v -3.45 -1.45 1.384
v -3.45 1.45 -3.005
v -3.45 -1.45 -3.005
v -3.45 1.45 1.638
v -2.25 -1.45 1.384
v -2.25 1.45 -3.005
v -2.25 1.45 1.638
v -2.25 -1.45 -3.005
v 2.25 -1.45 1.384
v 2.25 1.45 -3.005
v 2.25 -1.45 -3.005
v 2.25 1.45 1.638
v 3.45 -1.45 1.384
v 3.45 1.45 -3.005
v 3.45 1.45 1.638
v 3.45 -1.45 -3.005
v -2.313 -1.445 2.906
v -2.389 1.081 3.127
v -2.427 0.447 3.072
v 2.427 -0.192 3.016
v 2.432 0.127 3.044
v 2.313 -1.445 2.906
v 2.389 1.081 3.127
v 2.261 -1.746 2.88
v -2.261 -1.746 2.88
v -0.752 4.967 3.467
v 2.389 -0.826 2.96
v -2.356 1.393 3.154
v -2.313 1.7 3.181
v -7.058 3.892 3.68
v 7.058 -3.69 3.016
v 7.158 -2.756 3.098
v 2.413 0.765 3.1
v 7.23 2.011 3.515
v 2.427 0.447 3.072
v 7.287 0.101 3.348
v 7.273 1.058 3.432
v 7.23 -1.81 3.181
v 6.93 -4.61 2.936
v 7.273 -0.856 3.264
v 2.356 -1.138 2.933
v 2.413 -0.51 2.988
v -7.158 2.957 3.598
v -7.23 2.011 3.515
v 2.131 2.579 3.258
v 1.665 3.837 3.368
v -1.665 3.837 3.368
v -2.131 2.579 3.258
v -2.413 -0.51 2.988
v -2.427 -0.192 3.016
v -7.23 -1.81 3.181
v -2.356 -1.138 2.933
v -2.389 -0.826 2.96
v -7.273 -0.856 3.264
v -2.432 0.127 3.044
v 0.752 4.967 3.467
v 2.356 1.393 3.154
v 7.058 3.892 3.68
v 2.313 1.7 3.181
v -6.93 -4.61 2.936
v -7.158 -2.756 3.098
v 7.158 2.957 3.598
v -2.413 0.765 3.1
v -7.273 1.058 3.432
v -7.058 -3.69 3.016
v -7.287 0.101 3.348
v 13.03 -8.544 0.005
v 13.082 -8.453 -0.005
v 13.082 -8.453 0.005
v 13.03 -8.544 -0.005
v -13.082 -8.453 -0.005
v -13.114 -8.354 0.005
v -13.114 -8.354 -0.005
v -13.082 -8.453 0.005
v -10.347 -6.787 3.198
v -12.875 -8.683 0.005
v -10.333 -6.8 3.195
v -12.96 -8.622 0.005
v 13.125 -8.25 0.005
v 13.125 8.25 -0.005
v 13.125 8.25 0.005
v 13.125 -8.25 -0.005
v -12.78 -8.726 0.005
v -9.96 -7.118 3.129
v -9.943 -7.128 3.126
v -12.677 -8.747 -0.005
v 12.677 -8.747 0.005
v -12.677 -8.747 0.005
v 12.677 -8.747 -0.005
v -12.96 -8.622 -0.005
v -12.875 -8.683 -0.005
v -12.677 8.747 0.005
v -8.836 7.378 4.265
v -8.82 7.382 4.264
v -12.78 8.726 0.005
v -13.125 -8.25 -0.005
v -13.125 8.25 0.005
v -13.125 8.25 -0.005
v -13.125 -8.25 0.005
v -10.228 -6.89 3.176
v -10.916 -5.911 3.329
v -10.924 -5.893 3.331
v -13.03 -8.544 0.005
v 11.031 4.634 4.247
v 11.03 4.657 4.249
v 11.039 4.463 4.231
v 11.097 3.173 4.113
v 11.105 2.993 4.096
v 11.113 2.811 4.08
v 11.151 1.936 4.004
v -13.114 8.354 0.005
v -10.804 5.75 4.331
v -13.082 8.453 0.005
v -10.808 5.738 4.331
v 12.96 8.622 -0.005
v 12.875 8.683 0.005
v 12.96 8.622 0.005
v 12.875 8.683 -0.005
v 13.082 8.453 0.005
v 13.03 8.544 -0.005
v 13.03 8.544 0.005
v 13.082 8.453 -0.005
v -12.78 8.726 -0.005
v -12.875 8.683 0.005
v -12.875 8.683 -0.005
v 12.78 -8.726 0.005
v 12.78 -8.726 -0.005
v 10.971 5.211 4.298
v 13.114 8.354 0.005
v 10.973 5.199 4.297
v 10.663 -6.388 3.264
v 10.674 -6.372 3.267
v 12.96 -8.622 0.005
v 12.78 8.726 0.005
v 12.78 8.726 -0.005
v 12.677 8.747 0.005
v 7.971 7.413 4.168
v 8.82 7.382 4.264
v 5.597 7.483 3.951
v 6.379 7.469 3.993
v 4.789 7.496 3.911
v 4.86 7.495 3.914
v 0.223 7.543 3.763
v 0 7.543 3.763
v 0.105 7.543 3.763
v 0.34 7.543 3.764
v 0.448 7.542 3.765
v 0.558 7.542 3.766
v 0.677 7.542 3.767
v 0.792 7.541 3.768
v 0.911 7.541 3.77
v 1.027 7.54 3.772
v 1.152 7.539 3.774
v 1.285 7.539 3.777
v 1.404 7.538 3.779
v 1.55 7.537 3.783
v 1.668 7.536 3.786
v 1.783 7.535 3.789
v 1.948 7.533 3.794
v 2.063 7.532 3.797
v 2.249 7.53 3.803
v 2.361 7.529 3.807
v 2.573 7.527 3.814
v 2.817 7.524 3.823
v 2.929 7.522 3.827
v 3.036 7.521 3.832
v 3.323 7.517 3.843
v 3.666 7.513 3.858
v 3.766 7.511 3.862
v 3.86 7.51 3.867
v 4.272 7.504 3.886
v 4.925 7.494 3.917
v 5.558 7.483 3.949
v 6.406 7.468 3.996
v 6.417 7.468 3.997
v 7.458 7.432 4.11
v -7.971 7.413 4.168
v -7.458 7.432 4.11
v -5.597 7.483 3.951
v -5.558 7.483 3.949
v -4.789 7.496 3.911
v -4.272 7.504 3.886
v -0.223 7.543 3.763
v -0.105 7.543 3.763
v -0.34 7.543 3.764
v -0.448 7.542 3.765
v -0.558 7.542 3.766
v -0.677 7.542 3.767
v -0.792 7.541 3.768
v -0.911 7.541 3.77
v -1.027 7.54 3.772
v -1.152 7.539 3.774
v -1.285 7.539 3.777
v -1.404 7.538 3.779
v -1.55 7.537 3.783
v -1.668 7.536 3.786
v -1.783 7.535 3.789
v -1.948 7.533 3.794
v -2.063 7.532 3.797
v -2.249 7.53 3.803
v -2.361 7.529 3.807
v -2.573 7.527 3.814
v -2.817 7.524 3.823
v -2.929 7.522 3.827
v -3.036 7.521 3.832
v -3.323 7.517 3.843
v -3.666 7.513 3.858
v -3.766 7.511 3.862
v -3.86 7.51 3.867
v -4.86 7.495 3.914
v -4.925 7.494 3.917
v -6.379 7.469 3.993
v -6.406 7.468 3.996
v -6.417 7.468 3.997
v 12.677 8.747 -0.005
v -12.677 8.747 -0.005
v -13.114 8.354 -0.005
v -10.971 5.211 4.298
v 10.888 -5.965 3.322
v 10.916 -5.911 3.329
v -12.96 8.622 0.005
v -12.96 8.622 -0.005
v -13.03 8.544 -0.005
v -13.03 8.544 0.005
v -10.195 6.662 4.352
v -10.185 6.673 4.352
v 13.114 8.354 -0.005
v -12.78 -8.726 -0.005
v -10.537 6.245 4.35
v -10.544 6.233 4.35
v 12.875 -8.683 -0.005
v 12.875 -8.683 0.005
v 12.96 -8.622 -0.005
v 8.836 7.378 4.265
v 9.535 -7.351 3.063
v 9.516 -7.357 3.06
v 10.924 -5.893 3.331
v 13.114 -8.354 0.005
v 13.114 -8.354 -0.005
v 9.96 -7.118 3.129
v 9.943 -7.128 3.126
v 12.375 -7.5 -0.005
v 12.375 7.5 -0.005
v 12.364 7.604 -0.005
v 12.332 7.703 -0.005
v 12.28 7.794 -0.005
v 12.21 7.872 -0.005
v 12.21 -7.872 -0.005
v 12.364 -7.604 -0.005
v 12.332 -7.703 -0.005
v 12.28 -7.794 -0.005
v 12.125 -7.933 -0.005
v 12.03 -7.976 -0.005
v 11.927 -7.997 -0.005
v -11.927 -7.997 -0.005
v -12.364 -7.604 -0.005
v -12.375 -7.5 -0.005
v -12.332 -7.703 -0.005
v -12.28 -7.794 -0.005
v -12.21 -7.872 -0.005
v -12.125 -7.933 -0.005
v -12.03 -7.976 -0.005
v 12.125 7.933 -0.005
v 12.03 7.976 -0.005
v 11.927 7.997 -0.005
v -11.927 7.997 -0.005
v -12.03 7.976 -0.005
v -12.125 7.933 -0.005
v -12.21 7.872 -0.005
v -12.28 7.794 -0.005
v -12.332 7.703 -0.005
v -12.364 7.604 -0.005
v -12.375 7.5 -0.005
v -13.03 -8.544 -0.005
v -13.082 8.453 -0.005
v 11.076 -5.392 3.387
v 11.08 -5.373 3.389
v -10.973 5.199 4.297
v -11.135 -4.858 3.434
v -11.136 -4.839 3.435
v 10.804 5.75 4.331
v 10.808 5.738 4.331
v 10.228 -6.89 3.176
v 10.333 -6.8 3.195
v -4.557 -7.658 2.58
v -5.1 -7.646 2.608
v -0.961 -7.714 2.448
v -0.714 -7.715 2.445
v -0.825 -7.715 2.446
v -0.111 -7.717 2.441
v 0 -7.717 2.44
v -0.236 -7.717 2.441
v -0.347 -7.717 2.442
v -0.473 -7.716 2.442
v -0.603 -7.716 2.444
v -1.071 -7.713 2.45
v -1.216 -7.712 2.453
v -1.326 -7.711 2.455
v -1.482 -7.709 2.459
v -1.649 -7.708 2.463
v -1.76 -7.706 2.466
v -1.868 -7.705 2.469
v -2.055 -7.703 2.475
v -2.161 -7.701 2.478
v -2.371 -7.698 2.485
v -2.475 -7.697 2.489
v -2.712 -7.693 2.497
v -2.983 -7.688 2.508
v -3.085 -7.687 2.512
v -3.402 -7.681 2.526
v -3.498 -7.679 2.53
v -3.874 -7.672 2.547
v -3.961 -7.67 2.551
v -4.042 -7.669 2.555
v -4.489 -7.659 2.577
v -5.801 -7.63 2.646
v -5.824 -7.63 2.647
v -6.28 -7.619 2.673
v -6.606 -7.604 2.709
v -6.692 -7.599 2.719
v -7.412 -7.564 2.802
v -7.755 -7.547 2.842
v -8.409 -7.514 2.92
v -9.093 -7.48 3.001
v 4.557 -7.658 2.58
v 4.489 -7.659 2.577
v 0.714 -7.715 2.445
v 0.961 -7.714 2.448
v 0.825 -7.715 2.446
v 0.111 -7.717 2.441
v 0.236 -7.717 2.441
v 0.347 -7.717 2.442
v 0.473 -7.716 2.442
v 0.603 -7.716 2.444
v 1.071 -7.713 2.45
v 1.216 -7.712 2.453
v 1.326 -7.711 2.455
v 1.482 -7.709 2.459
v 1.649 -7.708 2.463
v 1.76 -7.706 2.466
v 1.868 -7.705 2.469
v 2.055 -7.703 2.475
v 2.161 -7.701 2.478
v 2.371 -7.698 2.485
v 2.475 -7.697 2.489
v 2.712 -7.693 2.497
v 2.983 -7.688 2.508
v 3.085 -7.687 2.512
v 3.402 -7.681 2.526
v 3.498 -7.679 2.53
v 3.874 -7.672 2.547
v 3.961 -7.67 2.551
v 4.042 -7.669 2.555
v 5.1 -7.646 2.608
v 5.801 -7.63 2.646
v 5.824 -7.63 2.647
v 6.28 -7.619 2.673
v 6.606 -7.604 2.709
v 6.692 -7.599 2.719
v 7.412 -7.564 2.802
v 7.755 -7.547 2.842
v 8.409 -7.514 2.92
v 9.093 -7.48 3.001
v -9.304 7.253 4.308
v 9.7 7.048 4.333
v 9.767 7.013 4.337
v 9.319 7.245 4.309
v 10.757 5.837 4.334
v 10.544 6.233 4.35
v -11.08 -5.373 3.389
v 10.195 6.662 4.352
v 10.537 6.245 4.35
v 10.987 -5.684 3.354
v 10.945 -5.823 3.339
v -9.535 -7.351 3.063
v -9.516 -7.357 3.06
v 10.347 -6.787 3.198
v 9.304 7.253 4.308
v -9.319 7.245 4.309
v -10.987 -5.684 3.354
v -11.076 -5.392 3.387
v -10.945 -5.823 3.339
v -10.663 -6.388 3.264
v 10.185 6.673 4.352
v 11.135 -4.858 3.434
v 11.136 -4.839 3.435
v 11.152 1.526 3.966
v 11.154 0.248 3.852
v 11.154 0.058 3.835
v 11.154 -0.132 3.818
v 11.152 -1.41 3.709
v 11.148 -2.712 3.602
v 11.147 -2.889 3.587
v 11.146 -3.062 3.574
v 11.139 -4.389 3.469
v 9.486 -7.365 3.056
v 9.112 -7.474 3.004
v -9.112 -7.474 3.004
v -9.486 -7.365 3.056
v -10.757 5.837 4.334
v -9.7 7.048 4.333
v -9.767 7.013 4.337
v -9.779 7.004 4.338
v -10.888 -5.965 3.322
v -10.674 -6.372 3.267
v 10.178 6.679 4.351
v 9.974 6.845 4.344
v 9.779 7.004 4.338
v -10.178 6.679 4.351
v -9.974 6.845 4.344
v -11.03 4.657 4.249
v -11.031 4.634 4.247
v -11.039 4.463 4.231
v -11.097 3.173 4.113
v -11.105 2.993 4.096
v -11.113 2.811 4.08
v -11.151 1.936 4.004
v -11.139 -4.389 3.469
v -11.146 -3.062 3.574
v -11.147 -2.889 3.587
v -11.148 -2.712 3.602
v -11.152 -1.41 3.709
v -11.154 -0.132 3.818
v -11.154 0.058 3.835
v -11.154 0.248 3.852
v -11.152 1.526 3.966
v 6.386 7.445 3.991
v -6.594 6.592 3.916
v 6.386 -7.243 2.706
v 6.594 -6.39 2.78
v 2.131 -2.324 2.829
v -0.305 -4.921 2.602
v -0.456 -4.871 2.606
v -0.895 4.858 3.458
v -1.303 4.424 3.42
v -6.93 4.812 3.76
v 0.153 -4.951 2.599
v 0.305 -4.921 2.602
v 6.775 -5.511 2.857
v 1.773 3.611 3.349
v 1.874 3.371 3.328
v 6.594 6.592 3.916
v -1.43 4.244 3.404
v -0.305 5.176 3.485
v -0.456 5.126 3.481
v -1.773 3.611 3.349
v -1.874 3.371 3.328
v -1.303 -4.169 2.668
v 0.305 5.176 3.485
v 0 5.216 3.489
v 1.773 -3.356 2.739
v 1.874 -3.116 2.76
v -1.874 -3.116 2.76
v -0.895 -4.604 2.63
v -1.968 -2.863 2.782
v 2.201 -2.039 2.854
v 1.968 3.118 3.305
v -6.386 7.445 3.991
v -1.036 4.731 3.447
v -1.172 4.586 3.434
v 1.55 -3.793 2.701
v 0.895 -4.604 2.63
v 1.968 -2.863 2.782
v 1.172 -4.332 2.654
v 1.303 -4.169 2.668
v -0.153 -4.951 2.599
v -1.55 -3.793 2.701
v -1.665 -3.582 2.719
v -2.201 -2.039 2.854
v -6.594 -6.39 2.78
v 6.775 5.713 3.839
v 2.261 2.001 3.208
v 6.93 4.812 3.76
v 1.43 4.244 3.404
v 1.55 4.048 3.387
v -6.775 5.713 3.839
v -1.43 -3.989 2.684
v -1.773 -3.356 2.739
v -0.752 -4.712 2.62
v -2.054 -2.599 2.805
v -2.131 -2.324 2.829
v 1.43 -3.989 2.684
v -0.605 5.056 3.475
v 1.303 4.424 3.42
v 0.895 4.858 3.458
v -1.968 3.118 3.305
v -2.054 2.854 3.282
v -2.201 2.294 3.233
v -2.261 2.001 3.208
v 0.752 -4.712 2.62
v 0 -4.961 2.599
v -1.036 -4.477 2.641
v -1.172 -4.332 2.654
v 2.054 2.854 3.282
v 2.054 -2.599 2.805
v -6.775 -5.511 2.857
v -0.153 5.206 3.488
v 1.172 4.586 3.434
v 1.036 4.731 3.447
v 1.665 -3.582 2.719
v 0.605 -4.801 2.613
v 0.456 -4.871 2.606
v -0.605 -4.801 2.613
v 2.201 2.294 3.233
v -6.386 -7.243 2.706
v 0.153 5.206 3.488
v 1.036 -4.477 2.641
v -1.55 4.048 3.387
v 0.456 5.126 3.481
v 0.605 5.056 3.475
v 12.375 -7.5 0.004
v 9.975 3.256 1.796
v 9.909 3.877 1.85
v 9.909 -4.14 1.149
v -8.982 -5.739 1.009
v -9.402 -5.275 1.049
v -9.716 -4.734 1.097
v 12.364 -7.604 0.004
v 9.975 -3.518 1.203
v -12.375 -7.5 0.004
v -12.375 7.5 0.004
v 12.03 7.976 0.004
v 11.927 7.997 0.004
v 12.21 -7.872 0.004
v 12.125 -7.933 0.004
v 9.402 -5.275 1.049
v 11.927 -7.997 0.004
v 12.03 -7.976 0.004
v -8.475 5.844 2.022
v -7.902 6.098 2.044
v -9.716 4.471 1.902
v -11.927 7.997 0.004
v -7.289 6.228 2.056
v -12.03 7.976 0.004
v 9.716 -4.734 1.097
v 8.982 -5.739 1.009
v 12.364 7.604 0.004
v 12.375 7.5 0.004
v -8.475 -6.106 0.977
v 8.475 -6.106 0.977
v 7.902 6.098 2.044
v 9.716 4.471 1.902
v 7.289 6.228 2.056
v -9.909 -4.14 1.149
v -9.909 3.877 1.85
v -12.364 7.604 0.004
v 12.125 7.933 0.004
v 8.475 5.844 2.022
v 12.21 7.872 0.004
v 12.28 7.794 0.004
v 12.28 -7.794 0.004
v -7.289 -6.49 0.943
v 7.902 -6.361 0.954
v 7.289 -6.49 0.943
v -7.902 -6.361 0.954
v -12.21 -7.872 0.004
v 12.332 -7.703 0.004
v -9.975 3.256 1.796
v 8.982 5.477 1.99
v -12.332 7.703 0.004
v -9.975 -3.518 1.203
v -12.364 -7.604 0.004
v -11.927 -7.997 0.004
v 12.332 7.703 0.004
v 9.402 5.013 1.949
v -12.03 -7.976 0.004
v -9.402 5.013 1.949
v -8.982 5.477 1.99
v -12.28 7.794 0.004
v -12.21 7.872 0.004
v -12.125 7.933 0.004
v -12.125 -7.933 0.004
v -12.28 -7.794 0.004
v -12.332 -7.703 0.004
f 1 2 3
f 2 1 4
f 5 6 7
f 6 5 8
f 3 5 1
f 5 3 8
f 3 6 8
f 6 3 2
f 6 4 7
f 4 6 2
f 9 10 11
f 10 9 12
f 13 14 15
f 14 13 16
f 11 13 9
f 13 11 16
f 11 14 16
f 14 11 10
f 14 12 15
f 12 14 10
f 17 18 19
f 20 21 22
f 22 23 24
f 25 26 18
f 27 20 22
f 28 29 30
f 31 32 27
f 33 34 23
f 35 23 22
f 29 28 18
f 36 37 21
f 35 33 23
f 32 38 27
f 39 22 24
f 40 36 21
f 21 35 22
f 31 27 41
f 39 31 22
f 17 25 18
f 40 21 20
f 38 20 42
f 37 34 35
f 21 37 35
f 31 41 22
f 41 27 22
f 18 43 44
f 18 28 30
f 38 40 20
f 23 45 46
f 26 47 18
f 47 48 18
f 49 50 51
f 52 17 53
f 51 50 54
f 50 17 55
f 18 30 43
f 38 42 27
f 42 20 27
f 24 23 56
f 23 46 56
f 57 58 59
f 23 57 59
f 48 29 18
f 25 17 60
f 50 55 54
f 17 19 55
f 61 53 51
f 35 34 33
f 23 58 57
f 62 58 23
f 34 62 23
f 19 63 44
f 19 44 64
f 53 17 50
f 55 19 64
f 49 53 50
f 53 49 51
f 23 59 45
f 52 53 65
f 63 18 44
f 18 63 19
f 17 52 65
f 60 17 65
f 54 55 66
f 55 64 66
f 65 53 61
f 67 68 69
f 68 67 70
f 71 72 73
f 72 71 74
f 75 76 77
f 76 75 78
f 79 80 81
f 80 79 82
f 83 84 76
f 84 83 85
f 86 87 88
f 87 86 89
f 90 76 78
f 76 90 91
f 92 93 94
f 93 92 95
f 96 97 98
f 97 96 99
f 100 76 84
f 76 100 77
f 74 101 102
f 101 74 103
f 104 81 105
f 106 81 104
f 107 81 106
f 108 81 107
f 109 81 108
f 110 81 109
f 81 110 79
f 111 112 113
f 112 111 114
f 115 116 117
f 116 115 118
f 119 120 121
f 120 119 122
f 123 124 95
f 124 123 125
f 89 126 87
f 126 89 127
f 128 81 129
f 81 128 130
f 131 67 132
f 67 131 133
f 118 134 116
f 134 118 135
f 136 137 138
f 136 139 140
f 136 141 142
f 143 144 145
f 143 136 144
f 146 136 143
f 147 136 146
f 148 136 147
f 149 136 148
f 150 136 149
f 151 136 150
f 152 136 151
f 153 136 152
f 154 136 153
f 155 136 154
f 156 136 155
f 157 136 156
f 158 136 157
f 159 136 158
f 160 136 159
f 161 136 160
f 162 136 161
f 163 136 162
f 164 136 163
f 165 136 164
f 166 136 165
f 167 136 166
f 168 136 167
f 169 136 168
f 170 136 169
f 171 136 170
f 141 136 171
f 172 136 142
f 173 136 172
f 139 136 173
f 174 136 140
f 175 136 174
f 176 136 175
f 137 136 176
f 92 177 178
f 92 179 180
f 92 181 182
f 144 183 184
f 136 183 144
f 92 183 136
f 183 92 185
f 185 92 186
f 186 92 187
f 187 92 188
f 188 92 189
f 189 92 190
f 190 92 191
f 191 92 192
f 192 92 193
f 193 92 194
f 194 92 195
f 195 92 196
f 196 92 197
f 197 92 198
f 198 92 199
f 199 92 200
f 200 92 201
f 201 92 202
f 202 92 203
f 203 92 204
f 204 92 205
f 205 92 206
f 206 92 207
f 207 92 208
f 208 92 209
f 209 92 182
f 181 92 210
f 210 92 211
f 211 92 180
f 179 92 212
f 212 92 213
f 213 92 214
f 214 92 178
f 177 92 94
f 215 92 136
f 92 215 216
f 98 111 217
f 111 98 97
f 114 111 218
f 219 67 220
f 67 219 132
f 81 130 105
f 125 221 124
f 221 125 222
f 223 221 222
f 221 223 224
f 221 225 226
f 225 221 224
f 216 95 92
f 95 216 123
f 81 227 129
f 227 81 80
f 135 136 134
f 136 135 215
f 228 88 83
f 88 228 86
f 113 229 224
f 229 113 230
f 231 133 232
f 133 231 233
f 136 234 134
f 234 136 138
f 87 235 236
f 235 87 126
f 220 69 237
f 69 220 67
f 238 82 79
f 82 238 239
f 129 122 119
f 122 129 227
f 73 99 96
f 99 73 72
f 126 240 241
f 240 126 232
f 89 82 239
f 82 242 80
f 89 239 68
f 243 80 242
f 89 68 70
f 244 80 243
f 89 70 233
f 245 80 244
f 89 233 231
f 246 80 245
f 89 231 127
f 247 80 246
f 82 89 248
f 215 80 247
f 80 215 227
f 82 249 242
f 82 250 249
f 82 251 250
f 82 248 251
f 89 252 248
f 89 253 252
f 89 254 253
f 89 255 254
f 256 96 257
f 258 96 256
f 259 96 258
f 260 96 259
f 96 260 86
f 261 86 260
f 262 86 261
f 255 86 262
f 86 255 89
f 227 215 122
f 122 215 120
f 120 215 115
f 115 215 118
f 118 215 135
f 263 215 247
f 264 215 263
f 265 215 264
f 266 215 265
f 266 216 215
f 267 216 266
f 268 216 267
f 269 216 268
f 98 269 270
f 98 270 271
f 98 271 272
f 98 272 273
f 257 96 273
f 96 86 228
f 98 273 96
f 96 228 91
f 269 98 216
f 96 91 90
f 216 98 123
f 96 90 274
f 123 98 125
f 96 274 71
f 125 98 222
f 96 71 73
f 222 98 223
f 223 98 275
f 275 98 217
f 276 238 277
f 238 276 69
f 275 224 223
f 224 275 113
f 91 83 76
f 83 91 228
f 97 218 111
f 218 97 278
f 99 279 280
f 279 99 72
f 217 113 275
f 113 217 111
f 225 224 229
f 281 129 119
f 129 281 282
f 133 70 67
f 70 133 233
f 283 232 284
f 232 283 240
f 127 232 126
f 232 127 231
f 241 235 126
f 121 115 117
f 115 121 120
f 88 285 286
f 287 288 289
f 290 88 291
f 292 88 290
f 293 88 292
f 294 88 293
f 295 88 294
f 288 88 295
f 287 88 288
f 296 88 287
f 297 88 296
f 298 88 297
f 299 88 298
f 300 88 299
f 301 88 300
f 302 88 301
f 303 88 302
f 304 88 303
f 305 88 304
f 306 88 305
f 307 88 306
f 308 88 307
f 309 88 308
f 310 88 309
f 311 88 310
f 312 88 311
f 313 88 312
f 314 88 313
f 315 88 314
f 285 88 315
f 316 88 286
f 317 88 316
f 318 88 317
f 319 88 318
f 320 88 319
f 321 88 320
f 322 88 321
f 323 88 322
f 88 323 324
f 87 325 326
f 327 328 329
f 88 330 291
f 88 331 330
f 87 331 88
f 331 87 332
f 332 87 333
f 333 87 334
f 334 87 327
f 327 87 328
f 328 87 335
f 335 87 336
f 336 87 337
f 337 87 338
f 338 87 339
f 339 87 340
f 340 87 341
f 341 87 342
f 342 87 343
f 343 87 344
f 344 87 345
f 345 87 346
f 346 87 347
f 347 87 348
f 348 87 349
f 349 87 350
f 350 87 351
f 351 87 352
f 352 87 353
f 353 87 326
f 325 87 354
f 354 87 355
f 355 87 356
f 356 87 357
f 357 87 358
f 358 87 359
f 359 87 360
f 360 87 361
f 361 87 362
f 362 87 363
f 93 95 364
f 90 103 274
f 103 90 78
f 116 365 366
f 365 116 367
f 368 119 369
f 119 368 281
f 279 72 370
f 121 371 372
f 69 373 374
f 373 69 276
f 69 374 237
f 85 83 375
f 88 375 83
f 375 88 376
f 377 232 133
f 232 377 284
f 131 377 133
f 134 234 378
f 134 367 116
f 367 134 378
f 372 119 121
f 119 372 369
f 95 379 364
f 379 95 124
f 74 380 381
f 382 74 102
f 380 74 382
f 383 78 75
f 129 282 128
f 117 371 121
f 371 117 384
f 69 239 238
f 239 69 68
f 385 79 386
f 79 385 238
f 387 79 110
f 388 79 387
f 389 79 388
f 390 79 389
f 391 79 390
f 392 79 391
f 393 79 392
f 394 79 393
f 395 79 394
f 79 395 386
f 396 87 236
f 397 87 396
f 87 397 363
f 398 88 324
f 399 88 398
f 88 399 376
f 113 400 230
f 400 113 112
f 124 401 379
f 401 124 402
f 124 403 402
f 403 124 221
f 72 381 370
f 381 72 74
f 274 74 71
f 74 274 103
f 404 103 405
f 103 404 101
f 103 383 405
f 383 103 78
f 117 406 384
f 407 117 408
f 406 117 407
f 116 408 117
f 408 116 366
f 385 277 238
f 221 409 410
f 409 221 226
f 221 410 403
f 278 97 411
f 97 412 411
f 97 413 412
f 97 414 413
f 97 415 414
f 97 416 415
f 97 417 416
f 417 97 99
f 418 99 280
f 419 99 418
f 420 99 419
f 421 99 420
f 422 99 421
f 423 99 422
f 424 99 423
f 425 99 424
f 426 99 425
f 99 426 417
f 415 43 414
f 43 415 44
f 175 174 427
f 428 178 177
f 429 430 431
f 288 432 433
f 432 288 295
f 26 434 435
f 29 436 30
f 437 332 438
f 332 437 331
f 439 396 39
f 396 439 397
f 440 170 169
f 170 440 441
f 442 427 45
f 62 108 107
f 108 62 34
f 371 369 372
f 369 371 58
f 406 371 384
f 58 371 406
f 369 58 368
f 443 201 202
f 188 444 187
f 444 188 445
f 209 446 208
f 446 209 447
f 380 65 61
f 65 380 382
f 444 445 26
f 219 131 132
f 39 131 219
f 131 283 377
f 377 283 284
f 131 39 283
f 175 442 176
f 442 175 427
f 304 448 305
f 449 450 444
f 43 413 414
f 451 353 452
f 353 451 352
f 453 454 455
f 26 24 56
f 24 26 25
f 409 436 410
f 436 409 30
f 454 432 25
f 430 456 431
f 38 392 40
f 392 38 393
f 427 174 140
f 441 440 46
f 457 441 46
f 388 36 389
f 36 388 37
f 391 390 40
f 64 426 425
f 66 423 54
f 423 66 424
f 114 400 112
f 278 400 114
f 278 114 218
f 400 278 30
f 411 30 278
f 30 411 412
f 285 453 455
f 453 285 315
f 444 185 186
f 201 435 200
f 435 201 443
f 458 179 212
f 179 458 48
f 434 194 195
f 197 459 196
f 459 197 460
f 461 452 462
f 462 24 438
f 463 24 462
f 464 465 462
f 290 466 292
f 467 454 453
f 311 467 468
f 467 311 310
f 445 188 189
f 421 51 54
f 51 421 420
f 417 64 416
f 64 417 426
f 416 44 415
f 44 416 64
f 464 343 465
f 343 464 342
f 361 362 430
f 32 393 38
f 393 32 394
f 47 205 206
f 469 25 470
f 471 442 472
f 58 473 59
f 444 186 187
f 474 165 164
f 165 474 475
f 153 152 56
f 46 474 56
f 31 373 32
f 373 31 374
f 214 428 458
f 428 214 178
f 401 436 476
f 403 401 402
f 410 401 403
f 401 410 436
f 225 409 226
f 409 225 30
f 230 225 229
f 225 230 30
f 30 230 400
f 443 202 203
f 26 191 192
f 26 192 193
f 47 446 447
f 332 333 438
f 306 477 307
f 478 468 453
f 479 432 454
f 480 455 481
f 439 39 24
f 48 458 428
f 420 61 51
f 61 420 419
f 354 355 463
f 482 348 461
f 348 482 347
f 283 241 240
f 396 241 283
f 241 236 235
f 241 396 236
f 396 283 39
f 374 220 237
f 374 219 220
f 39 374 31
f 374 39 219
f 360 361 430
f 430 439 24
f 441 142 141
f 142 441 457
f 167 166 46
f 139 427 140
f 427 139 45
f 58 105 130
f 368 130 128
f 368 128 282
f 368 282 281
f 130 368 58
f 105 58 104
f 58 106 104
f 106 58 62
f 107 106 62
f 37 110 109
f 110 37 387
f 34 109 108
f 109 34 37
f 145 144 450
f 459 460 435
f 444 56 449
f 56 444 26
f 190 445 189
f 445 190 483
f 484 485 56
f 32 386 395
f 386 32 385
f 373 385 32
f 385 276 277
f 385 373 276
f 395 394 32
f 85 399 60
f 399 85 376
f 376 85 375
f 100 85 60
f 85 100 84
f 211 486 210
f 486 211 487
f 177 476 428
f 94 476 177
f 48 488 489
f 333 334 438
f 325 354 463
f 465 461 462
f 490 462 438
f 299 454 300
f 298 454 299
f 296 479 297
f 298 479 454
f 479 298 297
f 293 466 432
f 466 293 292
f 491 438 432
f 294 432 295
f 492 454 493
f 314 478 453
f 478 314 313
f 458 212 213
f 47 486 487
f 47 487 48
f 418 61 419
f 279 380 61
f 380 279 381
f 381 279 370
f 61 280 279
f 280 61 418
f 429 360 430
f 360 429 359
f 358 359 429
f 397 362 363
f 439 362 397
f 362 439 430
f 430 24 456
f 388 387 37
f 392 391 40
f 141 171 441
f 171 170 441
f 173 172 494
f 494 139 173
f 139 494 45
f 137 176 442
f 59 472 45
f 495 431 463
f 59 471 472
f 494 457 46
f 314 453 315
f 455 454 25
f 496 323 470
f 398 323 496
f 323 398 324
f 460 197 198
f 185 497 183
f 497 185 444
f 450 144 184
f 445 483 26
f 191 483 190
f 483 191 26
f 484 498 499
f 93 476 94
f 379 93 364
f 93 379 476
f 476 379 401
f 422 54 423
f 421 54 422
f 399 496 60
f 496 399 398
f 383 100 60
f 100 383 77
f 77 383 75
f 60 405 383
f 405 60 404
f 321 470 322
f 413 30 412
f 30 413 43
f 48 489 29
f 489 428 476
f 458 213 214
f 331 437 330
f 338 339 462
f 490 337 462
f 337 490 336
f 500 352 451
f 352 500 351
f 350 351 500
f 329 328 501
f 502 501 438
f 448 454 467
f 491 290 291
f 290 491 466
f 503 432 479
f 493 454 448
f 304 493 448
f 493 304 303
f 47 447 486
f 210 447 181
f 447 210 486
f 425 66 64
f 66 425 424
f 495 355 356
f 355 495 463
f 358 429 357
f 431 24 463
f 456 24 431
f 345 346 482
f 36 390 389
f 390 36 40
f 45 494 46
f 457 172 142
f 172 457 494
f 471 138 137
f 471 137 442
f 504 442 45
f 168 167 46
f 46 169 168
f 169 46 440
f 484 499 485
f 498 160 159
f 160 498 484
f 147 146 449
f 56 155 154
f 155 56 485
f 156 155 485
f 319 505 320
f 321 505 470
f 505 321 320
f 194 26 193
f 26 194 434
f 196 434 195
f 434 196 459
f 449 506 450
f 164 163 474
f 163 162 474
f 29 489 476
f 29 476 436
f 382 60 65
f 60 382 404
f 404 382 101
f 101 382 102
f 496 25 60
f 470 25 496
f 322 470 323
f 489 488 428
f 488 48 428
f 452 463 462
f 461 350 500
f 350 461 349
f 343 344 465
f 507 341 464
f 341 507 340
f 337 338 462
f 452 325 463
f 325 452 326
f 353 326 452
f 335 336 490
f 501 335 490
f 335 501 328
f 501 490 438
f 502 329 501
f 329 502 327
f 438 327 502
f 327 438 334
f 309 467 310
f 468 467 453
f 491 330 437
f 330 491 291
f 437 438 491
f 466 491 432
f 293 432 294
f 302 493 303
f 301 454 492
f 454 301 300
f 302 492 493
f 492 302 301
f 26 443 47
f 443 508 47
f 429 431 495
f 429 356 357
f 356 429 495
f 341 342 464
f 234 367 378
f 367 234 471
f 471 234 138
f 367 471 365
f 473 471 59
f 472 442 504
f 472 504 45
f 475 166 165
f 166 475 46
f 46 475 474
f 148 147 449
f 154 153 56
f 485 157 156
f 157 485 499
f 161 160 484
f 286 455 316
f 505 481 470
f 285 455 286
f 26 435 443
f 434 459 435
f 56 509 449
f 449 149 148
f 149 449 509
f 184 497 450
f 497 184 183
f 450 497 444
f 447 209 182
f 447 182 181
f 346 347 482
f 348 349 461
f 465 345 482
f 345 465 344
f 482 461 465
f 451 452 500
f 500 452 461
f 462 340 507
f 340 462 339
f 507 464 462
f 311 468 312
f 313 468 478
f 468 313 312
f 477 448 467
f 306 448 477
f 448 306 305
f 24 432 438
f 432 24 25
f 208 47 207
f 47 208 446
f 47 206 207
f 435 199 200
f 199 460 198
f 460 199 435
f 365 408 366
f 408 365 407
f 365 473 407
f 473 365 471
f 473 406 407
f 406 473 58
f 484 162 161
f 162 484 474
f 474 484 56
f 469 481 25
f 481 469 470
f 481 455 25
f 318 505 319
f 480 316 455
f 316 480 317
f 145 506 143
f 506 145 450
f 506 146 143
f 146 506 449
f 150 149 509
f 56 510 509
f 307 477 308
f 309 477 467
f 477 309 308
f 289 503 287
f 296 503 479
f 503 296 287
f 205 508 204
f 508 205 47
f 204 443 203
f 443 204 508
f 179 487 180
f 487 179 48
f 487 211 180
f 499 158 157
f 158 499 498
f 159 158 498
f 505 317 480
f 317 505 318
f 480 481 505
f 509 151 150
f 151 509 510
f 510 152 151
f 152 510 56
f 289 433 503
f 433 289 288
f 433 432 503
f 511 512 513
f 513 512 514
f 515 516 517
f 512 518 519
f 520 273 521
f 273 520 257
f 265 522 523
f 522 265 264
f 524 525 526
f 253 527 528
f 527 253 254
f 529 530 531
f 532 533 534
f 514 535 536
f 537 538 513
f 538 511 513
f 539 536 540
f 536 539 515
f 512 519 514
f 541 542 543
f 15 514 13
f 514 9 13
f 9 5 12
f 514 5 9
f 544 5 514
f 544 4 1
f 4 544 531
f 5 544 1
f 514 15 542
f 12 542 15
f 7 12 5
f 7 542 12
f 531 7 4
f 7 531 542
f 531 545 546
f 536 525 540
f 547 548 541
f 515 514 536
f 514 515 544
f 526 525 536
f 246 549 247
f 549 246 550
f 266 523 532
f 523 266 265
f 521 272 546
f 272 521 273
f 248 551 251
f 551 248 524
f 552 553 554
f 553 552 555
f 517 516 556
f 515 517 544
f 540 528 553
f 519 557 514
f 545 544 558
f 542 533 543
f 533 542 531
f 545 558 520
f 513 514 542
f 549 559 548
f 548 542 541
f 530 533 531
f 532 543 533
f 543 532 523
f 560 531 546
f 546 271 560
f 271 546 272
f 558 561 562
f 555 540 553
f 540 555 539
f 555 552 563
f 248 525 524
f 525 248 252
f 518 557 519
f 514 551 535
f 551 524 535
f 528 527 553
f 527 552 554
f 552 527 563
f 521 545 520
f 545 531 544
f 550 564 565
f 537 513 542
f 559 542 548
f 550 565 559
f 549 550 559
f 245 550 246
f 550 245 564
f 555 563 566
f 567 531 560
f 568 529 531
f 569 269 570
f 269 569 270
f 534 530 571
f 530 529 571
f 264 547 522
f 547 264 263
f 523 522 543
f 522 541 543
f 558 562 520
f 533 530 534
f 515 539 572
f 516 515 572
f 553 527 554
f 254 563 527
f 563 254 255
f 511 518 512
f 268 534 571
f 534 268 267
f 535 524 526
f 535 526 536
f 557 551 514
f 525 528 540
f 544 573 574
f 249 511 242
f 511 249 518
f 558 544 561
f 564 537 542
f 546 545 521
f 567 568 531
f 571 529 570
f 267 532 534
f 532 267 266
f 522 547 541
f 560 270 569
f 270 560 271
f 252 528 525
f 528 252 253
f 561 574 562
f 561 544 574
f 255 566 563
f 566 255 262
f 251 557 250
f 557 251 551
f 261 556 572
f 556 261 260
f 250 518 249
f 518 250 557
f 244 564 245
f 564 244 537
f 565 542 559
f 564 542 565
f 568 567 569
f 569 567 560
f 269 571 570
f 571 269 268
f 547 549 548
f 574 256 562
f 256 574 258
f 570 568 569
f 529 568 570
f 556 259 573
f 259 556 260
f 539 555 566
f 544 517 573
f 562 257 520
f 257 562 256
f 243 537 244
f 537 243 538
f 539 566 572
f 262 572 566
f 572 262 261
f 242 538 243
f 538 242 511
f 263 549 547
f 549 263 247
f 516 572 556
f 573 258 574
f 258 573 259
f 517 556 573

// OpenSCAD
union () {
  difference () {
    translate ([-2.85, 0, 0]) {
      union () {
        color ([0, 1, 0, ]) {
          hull () {
            translate ([0, 0, 5]) {
              cube ([1.2, 2.9, 0.01], center=true);
            }
            translate ([0, 0, -3]) {
              translate ([0, 0, 0]) {
                cube ([1.2, 2.9, 0.01], center=true);
              }
            }
          }
        }
        color ([0, 1, 0, ]) {
          hull () {
            translate ([5.7, 0, 5]) {
              cube ([1.2, 2.9, 0.01], center=true);
            }
            translate ([0, 0, -3]) {
              translate ([5.7, 0, 0]) {
                cube ([1.2, 2.9, 0.01], center=true);
              }
            }
          }
        }
      }
    }
    translate ([0, 0, 4.5]) {
      rotate ([5.000000000000001,0.0,0.0]) {
        translate ([0, 0, 75.93375000000005]) {
          scale ([1, 2.1, 1]) {
            sphere ($fn=100, r=77.43375000000005);
          }
        }
      }
    }
  }
  difference () {
    difference () {
      hull () {
        translate ([0, 0, 4.5]) {
          rotate ([5.000000000000001,0.0,0.0]) {
            minkowski () {
              cube ([15.450000000000003, 8.3, 0.0099], center=true);
              cylinder ($fs=0.1, h=1.0E-4, r=3, center=true);
            }
          }
        }
        minkowski () {
          cube ([25.25, 16.5, 0.0099], center=true);
          cylinder ($fs=0.1, h=1.0E-4, r=0.5, center=true);
        }
      }
      translate ([0, 0, 4.5]) {
        rotate ([5.000000000000001,0.0,0.0]) {
          translate ([0, 0, 75.93375000000005]) {
            scale ([1, 2.1, 1]) {
              sphere ($fn=100, r=77.43375000000005);
            }
          }
        }
      }
    }
    #union () {
      hull () {
        rotate ([5.000000000000001,0.0,0.0]) {
          translate ([0, 0, 1.5]) {
            minkowski () {
              cube ([13.950000000000003, 6.800000000000001, 0.0099], center=true);
              cylinder ($fs=0.1, h=1.0E-4, r=3, center=true);
            }
          }
        }
        translate ([0, 0, -0.001]) {
          minkowski () {
            cube ([23.75, 15.0, 0.0099], center=true);
            cylinder ($fs=0.1, h=1.0E-4, r=0.5, center=true);
          }
        }
      }
    }
  }
}
